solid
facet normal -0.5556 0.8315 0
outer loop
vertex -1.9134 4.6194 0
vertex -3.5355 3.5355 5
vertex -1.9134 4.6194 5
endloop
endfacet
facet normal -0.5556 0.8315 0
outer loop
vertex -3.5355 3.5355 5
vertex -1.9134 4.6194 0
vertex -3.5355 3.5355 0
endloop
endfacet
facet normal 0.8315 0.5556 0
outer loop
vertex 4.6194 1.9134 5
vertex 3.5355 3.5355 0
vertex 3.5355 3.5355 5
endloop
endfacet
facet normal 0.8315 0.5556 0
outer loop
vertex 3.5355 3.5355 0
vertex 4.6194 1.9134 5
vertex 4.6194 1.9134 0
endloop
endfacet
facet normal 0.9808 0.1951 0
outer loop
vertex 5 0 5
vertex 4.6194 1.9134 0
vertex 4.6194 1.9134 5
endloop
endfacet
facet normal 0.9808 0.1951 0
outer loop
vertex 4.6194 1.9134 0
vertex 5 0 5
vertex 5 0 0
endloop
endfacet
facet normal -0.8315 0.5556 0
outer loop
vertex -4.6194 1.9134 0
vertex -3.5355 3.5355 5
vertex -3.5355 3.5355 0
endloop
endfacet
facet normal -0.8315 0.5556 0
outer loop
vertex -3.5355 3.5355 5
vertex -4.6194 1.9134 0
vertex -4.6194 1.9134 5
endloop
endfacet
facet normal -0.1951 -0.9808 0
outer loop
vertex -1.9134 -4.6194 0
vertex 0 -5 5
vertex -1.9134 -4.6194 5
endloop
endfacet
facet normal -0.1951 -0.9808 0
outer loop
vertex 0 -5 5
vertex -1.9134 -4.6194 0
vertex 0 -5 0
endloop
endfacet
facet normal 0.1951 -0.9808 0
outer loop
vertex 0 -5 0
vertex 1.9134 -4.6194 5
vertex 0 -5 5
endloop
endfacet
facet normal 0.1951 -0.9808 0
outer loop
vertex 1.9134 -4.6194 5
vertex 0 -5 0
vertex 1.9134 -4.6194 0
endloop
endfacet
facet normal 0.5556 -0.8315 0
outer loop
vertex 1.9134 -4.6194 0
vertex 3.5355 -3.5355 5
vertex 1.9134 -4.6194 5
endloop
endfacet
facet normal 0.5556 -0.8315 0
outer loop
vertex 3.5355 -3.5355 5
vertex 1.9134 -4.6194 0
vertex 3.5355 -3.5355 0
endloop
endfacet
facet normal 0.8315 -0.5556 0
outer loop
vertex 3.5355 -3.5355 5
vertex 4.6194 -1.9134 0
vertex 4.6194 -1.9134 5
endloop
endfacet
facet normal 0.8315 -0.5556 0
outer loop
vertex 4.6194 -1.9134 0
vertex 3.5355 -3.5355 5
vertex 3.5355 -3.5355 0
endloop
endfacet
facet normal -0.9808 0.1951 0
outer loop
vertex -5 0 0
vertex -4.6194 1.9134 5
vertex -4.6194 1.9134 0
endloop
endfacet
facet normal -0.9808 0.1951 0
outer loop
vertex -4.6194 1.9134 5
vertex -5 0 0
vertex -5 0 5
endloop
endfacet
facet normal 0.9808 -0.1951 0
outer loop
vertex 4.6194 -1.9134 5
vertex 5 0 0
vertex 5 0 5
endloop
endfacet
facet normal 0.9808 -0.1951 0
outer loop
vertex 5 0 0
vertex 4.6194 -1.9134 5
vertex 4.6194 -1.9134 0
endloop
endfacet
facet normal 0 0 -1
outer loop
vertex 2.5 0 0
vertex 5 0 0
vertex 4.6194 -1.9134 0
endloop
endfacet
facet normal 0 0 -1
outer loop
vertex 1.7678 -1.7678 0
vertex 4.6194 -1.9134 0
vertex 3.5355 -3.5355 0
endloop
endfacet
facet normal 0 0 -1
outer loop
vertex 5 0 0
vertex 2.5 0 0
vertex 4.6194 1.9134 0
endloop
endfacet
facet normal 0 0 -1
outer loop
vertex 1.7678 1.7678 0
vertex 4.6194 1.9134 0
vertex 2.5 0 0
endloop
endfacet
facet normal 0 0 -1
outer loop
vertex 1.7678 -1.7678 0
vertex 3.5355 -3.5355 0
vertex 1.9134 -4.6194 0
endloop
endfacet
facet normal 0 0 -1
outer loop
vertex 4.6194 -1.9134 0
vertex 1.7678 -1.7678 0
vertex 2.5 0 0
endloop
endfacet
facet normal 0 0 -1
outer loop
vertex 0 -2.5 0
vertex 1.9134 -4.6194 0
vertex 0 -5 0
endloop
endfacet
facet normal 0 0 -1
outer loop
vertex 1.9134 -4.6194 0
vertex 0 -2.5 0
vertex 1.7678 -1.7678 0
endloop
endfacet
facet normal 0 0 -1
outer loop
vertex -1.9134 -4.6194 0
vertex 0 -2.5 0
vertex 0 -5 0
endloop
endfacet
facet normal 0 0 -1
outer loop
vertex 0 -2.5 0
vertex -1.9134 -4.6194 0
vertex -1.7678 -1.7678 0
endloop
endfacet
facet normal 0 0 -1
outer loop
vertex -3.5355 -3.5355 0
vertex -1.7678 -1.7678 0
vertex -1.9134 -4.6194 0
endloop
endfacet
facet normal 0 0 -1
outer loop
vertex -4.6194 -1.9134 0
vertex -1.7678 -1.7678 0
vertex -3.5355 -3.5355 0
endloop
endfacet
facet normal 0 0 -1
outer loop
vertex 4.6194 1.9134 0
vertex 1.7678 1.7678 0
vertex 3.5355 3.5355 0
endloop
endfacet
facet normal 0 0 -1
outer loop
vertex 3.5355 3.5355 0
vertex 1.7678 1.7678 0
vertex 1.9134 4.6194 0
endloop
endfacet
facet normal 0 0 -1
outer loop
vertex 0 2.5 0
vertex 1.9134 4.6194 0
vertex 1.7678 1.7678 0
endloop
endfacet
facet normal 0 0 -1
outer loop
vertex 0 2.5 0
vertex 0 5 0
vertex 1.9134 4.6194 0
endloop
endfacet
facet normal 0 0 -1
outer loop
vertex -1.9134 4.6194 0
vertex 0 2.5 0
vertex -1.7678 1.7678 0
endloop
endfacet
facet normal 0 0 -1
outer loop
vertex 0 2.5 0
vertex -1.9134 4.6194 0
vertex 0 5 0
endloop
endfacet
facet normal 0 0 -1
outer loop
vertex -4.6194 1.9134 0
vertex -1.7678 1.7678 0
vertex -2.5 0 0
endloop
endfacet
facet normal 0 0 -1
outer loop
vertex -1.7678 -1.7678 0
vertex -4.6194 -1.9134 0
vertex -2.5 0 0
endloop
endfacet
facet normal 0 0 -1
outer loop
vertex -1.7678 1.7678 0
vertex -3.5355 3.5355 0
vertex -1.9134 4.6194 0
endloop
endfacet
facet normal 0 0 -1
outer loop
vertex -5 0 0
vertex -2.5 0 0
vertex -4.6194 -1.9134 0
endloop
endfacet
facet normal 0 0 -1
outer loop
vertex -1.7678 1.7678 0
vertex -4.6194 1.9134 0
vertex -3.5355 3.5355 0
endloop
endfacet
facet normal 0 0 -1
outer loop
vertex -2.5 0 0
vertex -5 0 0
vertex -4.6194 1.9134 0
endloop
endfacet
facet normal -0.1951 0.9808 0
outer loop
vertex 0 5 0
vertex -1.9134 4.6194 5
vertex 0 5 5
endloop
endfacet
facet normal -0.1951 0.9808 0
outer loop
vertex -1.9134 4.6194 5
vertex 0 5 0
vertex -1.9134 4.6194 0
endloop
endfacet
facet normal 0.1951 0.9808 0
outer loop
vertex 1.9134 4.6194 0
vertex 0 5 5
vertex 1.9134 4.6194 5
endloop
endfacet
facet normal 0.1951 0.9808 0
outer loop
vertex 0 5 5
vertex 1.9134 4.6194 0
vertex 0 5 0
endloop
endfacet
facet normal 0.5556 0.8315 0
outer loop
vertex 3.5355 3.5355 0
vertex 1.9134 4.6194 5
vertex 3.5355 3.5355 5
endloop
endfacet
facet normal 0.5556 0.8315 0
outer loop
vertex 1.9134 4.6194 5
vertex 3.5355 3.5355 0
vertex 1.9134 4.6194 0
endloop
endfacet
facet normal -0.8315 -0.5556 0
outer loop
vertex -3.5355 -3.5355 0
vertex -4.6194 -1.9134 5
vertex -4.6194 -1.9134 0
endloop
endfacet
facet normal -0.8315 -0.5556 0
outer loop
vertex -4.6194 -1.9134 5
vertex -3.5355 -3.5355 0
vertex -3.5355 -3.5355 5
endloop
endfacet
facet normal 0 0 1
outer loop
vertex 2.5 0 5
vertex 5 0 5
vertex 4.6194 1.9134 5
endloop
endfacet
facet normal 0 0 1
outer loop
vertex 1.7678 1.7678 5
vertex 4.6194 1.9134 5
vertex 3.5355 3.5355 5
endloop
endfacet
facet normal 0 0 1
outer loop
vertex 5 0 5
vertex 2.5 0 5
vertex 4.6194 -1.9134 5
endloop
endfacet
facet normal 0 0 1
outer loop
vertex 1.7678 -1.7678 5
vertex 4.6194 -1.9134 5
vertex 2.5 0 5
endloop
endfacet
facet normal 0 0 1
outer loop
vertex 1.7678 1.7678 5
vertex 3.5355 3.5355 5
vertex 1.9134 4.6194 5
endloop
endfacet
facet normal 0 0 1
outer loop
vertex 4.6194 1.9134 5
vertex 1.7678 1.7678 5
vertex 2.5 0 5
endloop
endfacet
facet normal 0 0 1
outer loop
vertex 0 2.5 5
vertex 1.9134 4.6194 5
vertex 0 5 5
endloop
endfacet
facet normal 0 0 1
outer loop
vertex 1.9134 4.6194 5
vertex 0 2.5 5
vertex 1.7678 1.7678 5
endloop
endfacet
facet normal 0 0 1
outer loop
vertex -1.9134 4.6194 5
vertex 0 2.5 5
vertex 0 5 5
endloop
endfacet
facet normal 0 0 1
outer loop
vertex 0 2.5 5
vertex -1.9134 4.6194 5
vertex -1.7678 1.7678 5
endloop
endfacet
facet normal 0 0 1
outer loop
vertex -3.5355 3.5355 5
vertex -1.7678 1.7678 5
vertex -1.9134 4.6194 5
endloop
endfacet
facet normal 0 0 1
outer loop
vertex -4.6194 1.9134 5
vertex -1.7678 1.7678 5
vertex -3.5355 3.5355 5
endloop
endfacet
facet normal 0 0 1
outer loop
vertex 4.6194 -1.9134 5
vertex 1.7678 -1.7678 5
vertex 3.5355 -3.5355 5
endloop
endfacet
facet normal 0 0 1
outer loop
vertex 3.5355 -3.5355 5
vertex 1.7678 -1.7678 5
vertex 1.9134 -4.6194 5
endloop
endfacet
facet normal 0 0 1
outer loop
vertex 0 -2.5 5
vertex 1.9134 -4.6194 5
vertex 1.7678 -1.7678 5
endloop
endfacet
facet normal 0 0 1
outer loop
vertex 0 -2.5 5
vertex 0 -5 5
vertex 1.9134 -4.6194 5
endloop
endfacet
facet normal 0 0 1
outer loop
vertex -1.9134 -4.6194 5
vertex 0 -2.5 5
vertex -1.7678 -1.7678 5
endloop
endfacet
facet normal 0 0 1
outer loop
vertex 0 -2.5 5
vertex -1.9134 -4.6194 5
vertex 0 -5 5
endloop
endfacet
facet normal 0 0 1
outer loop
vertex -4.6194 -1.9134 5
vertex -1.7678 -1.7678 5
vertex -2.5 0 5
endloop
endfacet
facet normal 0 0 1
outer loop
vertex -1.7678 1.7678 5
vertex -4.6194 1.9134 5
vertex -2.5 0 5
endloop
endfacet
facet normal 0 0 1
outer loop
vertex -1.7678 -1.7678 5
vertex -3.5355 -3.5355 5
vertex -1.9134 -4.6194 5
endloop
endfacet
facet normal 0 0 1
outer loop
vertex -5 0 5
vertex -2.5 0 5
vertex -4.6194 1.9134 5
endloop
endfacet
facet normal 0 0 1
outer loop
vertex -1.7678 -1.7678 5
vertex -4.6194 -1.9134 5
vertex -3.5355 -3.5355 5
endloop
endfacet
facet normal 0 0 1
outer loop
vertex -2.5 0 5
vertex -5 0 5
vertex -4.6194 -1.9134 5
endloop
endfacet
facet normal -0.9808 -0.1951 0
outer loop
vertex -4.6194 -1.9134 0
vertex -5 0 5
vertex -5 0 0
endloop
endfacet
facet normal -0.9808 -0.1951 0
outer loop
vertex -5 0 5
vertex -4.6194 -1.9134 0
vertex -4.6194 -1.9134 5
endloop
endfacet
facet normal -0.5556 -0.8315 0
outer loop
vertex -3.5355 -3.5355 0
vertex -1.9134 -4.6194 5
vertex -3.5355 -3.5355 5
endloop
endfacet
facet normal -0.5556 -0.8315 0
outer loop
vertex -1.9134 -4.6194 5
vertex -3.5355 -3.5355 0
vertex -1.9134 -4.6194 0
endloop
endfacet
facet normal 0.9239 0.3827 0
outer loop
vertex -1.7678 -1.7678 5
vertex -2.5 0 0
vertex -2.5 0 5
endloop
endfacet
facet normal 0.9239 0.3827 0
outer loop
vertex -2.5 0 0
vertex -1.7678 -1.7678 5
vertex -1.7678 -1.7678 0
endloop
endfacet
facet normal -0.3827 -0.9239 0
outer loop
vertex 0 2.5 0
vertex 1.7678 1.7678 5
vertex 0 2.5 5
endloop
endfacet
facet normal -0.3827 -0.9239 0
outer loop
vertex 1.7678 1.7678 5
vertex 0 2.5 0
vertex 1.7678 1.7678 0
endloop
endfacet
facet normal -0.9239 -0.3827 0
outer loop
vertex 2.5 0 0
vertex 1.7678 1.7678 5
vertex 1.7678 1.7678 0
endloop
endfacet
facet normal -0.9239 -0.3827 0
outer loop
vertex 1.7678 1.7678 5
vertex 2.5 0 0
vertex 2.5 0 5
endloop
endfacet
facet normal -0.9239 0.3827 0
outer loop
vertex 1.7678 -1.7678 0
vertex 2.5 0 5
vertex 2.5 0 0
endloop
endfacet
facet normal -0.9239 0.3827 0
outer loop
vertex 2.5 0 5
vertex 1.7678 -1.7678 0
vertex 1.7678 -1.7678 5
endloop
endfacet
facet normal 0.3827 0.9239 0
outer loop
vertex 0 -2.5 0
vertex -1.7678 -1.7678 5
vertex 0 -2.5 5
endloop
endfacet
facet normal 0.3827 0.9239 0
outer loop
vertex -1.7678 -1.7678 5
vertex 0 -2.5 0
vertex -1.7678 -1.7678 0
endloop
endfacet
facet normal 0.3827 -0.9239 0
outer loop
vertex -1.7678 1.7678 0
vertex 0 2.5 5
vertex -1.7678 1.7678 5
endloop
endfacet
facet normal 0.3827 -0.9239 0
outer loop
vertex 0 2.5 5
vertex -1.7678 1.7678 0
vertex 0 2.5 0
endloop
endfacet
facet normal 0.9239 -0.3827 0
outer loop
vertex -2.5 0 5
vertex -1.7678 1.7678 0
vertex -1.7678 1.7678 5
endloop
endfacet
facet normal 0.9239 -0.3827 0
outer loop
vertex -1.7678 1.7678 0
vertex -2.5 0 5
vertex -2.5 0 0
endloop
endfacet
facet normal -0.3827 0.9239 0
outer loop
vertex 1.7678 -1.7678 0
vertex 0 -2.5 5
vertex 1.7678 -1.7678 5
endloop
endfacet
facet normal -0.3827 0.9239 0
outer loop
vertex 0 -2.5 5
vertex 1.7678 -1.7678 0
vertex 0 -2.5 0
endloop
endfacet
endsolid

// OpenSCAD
// Simple cylindrical spacer for hardware prototypes
module spacer(outer_diameter=10, inner_diameter=5, height=5) {
    difference() {
        cylinder(d=outer_diameter, h=height);
        cylinder(d=inner_diameter, h=height);
    }
}

spacer();
